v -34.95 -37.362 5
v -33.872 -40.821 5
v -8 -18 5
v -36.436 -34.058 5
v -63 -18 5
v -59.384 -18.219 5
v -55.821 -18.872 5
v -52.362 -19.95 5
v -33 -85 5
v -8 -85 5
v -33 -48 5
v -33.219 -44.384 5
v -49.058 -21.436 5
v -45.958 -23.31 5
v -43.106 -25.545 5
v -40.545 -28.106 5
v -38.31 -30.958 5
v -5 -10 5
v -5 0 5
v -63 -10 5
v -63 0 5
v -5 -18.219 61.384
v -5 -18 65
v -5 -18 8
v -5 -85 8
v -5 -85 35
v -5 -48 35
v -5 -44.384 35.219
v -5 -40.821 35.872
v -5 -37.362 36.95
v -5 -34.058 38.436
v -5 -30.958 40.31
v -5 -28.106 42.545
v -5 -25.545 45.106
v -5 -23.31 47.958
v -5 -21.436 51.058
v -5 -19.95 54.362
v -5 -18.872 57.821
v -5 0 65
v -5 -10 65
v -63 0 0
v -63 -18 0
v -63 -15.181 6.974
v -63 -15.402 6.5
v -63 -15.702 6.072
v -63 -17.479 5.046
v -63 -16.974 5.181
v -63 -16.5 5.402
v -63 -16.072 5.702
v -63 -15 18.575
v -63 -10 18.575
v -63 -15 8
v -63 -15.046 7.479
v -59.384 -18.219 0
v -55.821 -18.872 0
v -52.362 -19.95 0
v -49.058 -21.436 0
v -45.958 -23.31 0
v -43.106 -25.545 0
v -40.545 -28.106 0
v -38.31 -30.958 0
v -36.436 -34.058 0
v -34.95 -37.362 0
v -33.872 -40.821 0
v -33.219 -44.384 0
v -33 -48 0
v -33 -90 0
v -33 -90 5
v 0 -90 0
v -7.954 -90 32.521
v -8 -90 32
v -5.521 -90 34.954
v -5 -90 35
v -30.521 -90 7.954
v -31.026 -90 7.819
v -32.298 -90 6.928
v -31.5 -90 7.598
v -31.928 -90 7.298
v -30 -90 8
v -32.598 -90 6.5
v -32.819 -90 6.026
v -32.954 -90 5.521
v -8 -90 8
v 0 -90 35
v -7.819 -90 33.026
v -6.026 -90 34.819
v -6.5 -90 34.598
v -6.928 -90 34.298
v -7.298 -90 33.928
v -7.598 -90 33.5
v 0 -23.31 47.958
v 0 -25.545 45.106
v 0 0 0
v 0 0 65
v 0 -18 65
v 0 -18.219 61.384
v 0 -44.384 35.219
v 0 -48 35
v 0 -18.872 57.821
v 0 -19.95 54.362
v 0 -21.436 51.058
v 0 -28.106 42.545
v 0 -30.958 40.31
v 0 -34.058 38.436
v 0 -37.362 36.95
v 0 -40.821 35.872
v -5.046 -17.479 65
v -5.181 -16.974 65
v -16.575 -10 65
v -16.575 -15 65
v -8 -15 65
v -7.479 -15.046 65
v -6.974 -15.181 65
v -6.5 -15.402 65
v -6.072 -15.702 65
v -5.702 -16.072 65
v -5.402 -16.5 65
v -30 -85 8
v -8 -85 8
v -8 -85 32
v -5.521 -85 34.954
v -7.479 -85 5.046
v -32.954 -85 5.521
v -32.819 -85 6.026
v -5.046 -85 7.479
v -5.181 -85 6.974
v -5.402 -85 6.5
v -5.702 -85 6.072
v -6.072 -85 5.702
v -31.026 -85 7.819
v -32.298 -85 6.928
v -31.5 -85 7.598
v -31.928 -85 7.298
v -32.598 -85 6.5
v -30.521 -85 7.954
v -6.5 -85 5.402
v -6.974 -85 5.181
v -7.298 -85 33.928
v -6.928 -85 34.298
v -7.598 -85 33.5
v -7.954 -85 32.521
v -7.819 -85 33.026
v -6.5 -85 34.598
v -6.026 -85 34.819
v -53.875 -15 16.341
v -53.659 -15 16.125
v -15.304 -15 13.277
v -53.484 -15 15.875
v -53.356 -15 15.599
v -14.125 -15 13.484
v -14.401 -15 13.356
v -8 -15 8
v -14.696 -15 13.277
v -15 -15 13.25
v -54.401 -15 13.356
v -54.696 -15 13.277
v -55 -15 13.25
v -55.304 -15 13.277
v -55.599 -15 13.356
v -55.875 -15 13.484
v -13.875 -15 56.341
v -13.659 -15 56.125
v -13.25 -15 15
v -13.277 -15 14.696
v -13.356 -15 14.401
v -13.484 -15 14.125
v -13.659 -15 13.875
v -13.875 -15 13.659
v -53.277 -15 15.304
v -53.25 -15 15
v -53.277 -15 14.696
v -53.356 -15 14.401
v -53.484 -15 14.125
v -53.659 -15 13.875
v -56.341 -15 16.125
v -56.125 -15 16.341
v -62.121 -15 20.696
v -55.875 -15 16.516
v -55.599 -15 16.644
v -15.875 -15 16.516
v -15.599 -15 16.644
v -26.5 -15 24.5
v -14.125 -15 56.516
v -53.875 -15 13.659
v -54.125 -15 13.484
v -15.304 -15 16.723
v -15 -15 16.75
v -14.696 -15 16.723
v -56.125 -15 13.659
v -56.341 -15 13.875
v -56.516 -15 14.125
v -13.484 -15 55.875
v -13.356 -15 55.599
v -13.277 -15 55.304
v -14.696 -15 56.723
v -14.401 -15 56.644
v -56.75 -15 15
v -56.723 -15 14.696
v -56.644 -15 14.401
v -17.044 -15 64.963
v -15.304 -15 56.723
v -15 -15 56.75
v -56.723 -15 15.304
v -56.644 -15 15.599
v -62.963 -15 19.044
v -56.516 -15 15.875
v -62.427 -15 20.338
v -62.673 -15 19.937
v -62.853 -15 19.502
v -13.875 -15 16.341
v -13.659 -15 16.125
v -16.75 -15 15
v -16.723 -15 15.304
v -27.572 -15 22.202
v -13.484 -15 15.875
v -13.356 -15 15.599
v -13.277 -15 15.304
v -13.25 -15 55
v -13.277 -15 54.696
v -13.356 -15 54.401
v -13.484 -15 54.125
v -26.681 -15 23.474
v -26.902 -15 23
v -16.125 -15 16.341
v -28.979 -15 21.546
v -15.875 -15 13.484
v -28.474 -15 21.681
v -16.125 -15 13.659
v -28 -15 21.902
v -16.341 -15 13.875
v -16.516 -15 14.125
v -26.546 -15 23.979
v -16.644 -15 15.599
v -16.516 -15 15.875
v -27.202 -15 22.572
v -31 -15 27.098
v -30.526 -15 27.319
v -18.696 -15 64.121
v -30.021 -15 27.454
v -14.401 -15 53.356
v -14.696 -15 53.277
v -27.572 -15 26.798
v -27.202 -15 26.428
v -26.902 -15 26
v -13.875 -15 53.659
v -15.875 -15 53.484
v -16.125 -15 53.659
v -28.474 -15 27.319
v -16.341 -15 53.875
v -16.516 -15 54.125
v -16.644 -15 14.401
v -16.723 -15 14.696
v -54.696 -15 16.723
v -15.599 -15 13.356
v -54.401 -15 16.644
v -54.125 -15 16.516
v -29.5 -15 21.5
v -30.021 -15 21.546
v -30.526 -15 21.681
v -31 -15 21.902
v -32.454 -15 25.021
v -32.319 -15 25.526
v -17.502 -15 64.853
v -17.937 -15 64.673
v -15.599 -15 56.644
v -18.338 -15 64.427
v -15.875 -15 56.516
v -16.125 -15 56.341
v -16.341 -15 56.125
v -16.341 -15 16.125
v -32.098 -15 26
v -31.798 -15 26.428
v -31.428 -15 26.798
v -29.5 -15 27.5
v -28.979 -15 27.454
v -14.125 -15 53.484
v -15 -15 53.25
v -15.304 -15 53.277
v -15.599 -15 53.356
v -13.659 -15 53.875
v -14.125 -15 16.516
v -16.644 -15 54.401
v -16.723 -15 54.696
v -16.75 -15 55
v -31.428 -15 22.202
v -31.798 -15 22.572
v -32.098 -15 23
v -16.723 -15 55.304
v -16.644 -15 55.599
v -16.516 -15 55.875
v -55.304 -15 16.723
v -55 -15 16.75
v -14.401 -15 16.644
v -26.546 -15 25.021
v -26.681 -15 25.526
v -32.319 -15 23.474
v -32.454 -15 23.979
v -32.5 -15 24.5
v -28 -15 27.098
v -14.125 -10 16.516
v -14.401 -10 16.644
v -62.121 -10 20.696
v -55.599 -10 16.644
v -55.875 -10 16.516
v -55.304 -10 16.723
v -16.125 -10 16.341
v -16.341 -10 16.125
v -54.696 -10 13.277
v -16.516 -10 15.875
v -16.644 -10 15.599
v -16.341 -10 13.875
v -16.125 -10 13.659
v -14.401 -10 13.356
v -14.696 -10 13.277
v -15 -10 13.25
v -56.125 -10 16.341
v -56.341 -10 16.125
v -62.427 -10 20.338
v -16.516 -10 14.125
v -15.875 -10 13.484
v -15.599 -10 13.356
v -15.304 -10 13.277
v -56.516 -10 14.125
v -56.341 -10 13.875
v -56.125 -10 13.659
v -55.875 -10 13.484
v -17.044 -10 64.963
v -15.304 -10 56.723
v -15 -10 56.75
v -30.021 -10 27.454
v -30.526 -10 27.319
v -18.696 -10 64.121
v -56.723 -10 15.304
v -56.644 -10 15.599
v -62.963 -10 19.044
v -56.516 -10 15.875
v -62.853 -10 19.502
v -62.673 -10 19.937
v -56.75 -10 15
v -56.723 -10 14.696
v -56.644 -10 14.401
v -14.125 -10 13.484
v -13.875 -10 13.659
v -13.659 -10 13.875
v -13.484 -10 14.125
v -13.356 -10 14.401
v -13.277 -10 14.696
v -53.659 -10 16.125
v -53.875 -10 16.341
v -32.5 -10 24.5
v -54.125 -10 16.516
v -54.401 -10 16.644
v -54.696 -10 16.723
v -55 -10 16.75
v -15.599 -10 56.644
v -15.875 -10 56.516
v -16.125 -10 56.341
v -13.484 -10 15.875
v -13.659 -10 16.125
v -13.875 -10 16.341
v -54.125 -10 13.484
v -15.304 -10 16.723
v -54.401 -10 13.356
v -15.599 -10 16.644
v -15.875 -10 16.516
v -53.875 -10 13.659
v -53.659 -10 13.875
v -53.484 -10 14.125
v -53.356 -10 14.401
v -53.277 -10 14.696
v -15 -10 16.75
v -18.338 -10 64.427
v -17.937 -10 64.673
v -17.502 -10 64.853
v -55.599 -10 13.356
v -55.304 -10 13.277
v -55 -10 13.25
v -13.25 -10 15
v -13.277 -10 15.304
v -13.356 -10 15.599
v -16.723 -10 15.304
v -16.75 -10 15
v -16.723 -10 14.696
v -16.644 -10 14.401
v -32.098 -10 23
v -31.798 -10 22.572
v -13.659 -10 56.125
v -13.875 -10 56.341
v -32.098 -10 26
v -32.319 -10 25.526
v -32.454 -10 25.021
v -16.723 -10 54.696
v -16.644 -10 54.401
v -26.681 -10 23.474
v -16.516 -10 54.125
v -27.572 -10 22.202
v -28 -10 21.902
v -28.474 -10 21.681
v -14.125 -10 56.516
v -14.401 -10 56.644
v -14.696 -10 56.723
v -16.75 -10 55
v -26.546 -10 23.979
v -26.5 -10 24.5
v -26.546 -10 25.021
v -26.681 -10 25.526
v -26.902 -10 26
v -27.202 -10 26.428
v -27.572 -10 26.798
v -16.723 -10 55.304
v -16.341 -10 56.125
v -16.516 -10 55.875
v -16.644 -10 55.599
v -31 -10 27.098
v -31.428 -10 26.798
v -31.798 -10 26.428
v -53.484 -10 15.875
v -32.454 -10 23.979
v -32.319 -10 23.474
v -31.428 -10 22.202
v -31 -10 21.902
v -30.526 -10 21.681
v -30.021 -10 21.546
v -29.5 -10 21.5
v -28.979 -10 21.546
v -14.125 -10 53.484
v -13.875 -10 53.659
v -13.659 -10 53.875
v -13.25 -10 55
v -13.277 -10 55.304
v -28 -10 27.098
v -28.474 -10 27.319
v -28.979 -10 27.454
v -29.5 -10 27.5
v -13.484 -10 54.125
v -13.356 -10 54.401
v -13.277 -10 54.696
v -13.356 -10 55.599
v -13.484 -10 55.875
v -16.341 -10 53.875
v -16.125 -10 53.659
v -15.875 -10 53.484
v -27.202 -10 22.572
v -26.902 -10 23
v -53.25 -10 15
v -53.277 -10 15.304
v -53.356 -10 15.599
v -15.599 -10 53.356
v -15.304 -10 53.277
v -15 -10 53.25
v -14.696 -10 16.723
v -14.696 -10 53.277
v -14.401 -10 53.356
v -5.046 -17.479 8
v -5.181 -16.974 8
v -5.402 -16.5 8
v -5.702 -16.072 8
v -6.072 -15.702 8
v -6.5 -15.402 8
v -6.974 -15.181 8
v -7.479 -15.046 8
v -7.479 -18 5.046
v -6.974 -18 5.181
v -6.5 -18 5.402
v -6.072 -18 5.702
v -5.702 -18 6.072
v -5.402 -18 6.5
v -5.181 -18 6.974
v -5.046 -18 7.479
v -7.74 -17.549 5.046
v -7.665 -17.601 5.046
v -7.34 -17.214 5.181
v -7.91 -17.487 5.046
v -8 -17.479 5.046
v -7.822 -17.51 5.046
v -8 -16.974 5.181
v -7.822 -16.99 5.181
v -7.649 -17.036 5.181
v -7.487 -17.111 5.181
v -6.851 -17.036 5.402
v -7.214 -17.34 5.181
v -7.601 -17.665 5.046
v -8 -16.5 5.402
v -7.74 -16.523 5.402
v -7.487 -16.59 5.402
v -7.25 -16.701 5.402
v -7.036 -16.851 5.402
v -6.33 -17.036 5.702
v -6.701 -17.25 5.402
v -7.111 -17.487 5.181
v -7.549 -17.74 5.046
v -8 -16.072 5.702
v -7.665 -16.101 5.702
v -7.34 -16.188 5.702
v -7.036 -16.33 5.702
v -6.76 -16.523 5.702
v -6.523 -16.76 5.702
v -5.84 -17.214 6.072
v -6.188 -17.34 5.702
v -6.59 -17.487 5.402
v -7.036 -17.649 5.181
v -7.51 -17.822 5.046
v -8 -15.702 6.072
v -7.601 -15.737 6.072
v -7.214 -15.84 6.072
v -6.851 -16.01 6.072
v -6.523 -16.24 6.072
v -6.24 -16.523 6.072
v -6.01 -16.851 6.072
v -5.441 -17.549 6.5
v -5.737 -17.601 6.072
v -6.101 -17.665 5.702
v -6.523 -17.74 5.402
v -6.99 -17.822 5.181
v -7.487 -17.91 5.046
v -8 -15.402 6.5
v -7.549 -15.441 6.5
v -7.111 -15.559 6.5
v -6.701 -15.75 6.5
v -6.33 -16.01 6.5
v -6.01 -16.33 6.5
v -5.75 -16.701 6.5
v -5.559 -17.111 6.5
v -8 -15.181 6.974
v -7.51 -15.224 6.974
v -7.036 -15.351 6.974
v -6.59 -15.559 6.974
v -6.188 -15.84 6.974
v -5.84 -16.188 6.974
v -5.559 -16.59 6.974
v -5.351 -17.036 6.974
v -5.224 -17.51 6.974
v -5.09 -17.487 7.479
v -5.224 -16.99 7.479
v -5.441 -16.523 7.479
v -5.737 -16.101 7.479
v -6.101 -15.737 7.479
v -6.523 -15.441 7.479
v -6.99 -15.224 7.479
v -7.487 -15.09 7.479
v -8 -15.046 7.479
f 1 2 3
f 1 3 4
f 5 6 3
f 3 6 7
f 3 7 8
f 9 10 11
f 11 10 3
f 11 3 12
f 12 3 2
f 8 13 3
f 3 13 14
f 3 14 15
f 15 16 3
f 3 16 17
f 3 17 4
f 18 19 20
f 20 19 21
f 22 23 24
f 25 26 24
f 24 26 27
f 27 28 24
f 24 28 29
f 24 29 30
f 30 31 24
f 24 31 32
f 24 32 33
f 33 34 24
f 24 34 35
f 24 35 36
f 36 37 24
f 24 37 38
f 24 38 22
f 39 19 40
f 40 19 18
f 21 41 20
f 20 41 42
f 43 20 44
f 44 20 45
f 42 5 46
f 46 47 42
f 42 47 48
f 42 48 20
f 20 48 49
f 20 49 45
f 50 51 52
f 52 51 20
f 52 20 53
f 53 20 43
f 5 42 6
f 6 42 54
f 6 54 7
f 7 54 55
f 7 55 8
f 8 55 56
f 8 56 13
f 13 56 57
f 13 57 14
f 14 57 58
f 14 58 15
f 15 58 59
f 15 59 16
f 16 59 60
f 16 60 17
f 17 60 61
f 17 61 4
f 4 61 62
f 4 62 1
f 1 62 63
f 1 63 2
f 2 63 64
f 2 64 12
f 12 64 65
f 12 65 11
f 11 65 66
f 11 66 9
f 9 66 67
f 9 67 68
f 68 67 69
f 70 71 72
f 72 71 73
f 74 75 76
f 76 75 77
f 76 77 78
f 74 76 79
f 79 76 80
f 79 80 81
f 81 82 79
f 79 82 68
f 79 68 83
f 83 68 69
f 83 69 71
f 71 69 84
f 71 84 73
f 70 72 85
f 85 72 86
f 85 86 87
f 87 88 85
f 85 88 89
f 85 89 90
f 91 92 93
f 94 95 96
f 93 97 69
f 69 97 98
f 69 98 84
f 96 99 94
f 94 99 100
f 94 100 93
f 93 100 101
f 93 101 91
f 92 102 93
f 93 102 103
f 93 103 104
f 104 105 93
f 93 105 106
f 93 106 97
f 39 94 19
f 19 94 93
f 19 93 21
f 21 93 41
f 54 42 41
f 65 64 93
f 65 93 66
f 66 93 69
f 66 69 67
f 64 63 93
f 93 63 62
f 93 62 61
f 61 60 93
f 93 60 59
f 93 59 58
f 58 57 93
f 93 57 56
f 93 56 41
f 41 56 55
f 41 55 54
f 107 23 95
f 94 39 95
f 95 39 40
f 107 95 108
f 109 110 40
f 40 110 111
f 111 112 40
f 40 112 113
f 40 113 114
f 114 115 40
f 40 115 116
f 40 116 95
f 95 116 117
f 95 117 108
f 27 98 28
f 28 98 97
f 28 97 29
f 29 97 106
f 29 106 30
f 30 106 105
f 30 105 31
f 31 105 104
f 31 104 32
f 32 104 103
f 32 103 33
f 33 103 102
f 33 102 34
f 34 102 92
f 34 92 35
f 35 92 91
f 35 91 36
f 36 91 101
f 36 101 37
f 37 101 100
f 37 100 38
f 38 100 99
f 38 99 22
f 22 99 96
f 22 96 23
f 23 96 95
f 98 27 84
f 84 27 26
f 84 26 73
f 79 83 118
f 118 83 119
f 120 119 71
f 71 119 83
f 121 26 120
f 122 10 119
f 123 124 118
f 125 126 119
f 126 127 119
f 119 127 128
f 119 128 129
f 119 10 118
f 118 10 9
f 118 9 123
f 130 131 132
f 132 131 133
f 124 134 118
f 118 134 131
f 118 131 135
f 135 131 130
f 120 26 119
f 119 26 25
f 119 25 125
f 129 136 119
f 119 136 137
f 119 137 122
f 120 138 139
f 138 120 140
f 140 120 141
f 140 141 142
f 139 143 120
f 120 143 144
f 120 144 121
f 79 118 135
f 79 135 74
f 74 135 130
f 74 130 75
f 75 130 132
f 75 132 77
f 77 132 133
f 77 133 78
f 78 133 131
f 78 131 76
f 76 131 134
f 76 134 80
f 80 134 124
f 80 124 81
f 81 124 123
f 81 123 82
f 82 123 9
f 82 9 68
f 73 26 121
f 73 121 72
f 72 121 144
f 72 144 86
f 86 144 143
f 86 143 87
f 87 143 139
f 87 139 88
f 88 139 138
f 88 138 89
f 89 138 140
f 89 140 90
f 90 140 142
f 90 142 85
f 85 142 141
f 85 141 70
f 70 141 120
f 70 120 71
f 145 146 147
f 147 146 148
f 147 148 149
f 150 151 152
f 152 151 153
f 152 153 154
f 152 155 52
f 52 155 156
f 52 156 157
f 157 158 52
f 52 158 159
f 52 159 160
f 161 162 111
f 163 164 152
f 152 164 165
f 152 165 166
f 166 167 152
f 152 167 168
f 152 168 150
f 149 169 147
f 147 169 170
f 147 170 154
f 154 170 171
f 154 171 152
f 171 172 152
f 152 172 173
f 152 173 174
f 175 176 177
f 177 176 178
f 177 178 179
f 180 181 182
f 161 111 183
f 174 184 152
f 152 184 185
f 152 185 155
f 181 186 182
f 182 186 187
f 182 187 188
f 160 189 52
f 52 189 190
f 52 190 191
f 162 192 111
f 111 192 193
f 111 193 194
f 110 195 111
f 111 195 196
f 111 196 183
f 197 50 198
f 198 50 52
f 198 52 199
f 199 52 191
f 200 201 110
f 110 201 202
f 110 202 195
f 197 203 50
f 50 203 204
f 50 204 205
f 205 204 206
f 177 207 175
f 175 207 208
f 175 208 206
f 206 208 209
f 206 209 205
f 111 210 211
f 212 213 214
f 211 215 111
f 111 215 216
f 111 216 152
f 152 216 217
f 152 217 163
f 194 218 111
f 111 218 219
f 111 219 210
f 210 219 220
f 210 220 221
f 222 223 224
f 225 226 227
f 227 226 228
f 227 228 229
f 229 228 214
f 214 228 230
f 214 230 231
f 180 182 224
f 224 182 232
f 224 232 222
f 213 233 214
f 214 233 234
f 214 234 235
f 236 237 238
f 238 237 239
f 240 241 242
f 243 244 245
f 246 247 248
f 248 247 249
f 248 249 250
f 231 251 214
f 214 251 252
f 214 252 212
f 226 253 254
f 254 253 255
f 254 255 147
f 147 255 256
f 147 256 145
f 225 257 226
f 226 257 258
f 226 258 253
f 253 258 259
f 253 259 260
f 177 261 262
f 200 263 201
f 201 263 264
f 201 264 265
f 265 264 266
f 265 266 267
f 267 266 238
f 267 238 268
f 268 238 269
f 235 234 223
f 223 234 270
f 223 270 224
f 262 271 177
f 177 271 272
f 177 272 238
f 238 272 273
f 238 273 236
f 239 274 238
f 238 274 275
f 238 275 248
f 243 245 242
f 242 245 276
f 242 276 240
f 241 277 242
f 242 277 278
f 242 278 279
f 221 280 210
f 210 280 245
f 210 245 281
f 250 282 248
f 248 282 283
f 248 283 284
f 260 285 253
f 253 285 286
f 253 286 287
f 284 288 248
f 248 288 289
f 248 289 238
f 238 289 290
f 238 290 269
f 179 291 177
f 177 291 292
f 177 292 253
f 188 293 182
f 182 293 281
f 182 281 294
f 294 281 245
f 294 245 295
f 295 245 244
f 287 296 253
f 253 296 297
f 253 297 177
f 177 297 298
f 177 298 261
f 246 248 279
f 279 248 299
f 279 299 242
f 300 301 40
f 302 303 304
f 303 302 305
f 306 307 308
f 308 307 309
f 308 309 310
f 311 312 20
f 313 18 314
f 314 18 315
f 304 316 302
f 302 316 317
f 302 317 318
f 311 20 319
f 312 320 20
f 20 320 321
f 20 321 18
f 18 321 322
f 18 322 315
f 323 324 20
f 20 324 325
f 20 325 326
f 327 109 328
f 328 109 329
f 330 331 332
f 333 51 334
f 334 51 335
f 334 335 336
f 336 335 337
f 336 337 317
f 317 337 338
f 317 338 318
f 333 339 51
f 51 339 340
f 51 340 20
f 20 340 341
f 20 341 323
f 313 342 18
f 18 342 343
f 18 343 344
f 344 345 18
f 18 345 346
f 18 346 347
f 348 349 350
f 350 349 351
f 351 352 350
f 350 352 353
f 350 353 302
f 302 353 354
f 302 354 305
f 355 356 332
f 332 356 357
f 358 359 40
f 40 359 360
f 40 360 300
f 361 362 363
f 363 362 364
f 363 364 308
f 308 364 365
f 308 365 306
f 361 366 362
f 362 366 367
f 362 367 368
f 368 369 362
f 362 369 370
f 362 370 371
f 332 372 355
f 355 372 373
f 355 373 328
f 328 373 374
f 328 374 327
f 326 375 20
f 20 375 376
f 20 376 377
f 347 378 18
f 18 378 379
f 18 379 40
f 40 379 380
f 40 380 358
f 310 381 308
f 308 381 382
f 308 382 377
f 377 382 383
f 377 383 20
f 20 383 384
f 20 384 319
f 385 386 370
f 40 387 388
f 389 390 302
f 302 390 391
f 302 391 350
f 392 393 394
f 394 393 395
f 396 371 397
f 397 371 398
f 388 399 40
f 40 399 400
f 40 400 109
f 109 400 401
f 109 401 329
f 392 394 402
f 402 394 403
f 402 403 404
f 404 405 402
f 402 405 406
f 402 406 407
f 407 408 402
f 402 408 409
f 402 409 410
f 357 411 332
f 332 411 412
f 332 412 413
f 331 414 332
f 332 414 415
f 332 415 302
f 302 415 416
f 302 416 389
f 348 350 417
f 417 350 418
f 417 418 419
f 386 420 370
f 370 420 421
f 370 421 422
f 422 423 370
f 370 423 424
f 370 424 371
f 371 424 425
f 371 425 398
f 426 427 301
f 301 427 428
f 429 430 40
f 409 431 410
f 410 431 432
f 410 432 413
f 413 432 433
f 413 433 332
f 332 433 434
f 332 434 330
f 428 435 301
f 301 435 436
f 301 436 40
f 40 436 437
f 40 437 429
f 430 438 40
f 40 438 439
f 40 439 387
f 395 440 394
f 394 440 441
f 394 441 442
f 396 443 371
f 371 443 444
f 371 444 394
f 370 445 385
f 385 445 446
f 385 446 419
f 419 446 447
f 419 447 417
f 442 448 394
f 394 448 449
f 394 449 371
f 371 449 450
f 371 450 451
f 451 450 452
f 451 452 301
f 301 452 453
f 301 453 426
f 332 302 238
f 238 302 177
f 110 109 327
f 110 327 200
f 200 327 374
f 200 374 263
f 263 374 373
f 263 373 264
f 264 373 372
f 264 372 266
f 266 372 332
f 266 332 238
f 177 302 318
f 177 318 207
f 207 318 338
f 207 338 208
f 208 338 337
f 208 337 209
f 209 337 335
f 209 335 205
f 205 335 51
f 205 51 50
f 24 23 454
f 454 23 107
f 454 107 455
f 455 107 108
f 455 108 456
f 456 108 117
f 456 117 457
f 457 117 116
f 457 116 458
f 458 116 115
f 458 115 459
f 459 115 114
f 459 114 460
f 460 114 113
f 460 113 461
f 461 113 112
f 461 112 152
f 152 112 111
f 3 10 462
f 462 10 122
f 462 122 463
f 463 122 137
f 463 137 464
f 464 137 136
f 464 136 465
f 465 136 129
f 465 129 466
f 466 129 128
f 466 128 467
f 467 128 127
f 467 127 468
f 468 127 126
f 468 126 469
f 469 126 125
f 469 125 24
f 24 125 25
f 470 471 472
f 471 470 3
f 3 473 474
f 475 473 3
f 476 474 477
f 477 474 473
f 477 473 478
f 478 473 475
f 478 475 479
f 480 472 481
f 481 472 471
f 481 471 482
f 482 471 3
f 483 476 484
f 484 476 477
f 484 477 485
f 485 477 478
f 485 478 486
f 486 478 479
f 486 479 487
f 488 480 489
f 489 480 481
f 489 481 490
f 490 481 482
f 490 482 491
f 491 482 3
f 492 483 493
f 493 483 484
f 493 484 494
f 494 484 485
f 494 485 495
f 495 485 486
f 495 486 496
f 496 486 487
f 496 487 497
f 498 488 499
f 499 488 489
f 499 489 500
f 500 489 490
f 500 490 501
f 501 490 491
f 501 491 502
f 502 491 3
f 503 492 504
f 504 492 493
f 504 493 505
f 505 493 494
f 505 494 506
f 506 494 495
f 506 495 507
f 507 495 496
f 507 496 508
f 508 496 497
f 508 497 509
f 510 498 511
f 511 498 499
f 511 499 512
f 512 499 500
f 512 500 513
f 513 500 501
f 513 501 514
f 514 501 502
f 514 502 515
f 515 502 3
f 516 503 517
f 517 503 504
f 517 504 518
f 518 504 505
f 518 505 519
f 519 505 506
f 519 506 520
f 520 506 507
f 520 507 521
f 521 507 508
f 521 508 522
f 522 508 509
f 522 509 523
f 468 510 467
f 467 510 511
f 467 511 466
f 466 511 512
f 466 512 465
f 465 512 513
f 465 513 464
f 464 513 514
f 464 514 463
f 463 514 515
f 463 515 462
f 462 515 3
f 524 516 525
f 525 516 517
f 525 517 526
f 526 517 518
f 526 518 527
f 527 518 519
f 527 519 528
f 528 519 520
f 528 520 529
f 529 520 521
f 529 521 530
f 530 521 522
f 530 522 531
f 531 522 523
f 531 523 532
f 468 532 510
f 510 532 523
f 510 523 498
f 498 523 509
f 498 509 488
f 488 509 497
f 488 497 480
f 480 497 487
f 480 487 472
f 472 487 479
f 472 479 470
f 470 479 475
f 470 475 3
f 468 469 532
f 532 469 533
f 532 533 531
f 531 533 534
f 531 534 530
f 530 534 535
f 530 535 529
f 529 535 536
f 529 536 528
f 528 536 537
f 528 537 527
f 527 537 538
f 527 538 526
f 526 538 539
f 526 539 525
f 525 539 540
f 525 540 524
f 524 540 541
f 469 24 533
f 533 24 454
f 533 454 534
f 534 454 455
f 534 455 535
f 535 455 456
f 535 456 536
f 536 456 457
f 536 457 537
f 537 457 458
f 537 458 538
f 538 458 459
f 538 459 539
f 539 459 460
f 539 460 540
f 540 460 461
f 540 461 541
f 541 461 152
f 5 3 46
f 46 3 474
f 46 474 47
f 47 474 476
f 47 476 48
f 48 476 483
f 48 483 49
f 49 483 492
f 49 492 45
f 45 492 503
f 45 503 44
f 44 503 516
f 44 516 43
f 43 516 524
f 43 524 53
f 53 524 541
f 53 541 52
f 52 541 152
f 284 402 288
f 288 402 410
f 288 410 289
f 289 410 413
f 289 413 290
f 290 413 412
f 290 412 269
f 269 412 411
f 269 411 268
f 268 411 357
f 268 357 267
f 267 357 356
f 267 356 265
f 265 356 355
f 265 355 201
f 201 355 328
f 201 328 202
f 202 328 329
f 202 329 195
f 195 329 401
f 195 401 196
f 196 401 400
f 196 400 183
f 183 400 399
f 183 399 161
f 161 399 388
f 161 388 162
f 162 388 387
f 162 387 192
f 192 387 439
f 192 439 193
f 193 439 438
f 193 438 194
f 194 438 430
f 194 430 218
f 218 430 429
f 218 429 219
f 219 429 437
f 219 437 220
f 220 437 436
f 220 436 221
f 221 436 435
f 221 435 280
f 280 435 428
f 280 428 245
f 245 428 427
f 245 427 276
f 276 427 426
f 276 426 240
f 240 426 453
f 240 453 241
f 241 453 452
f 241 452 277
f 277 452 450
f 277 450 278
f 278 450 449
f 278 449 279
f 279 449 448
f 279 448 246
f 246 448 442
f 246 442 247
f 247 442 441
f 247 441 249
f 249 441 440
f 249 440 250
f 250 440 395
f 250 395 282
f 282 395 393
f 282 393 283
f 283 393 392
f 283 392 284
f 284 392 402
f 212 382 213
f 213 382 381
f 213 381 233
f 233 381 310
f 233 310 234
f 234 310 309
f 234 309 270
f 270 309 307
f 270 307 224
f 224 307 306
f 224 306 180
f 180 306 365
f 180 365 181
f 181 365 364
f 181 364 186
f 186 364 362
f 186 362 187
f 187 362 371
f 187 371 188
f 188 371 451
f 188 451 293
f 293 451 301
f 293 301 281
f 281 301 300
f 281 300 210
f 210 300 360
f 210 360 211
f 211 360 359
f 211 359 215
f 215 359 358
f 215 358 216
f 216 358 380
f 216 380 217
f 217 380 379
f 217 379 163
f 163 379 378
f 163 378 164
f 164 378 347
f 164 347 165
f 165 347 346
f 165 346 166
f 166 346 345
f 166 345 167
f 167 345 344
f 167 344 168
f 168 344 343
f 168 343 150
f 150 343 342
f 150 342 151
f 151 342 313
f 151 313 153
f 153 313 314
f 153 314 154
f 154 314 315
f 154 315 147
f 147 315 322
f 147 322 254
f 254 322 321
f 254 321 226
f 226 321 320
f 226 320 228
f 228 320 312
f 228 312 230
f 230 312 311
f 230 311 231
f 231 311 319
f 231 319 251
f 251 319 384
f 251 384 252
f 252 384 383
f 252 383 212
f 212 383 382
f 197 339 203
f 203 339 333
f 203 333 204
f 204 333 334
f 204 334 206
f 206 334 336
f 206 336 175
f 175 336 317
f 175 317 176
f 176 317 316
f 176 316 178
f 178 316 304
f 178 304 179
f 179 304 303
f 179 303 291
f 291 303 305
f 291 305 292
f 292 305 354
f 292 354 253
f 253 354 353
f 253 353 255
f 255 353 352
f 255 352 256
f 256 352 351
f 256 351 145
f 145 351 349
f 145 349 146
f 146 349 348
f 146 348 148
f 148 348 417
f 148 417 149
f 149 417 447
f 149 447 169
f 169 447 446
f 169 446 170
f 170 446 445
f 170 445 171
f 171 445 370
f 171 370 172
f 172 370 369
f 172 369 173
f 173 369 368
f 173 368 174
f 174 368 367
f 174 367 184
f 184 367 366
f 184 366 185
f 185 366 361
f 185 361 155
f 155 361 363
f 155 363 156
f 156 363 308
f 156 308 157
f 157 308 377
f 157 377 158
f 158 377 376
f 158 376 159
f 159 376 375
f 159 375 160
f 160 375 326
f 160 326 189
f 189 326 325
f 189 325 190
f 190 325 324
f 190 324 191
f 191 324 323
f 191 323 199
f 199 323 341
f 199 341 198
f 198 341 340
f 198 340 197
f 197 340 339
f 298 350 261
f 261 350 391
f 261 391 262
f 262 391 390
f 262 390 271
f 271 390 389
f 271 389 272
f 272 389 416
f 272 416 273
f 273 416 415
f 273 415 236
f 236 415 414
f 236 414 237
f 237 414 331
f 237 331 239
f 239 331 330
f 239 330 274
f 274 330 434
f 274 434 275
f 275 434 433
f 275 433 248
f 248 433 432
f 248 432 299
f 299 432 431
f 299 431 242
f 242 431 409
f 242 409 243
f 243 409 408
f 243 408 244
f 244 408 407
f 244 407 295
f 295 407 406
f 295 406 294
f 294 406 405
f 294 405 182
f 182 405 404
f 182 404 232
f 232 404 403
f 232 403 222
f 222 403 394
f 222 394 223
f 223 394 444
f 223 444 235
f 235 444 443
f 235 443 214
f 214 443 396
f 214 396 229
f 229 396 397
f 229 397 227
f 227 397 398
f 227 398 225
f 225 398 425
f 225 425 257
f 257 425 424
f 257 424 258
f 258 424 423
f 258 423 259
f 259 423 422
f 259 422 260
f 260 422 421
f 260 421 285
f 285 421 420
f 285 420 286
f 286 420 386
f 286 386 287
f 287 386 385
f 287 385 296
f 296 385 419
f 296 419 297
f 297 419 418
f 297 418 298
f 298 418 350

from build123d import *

# Parameters (mm, degrees)
SALIENTE_EXTRUIR1_DEPTH = 5
CROQUIS2_W              = 5
CROQUIS2_H              = 90
SALIENTE_EXTRUIR2_DEPTH = 60
CORTAR_EXTRUIR1_DEPTH   = 5
SALIENTE_EXTRUIR3_DEPTH = 5
REDONDEO1_R             = 3
CROQUIS5_W              = 58
CROQUIS5_H              = 5
SALIENTE_EXTRUIR4_DEPTH = 60
CORTAR_EXTRUIR2_DEPTH   = 5
REDONDEO2_R             = 3
REDONDEO3_R             = 3
CROQUIS7_R              = 1.75
CROQUIS7_R_2            = 3.15
CORTAR_EXTRUIR3_DEPTH   = 5


with BuildPart() as part:
    # Croquis1 → Saliente-Extruir1 (new body)
    with BuildSketch(Plane.XY):
        with BuildLine():
            Line((-63, 0), (0, 0))
            Line((0, 0), (0, -90))
            Line((0, -90), (-33, -90))
            Line((-33, -90), (-33, -48))
            ThreePointArc((-33, -48), (-41.786797, -26.786797), (-63, -18))
            Line((-63, -18), (-63, 0))
        make_face()
    extrude(amount=SALIENTE_EXTRUIR1_DEPTH)

    # Croquis2 → Saliente-Extruir2 (add)
    with BuildSketch(Plane.XY.offset(5)):
        with Locations((-2.5, -45)):
            Rectangle(CROQUIS2_W, CROQUIS2_H)
    extrude(amount=SALIENTE_EXTRUIR2_DEPTH)

    # Croquis3 → Cortar-Extruir1 (cut)
    with BuildSketch(Plane(origin=(0, 0, 0), x_dir=(0, 0, -1), z_dir=(1, 0, 0))):
        with BuildLine():
            Line((-65, -90), (-35, -90))
            Line((-35, -90), (-35, -48))
            ThreePointArc((-35, -48), (-43.786797, -26.786797), (-65, -18))
            Line((-65, -18), (-65, -90))
        make_face()
    extrude(amount=-CORTAR_EXTRUIR1_DEPTH, mode=Mode.SUBTRACT)

    # Croquis4 → Saliente-Extruir3 (add)
    with BuildSketch(Plane.XZ.offset(90)):
        Polygon((-33, 8), (-8, 8), (-8, 35), (-5, 35), (-5, 5), (-33, 5), align=None)
    extrude(amount=-SALIENTE_EXTRUIR3_DEPTH)

    # Redondeo1
    redondeo1_edges = [part.edges().sort_by_distance(p)[0] for p in [
        (-33, -87.5, 8),
        (-8, -87.5, 35),
    ]]
    fillet(redondeo1_edges, radius=REDONDEO1_R)

    # Croquis5 → Saliente-Extruir4 (add)
    with BuildSketch(Plane.XY.offset(5)):
        with Locations((-34, -12.5)):
            Rectangle(CROQUIS5_W, CROQUIS5_H)
    extrude(amount=SALIENTE_EXTRUIR4_DEPTH)

    # Croquis6 → Cortar-Extruir2 (cut)
    with BuildSketch(Plane(origin=(0, -10, 0), x_dir=(1, 0, 0), z_dir=(0, 1, 0))):
        Polygon((-63, -19.817641), (-17.817641, -65), (-63, -65), align=None)
    extrude(amount=-CORTAR_EXTRUIR2_DEPTH, mode=Mode.SUBTRACT)

    # Redondeo2
    redondeo2_edges = [part.edges().sort_by_distance(p)[0] for p in [
        (-63, -12.5, 19.817641),
        (-17.817641, -12.5, 65),
    ]]
    fillet(redondeo2_edges, radius=REDONDEO2_R)

    # Redondeo3
    redondeo3_edges = [part.edges().sort_by_distance(p)[0] for p in [
        (-34, -15, 5),
        (-5, -15, 35),
        (-5, -50, 5),
    ]]
    fillet(redondeo3_edges, radius=REDONDEO3_R)

    # Croquis7 → Cortar-Extruir3 (cut)
    with BuildSketch(Plane(origin=(0, -10, 0), x_dir=(1, 0, 0), z_dir=(0, 1, 0))):
        with Locations((-15, -55)):
            Circle(CROQUIS7_R)
        with Locations((-15, -15)):
            Circle(CROQUIS7_R)
        with Locations((-55, -15)):
            Circle(CROQUIS7_R)
        with Locations((-29.5, -24.5)):
            Circle(CROQUIS7_R_2)
    extrude(amount=-CORTAR_EXTRUIR3_DEPTH, mode=Mode.SUBTRACT)


solid = part.part
